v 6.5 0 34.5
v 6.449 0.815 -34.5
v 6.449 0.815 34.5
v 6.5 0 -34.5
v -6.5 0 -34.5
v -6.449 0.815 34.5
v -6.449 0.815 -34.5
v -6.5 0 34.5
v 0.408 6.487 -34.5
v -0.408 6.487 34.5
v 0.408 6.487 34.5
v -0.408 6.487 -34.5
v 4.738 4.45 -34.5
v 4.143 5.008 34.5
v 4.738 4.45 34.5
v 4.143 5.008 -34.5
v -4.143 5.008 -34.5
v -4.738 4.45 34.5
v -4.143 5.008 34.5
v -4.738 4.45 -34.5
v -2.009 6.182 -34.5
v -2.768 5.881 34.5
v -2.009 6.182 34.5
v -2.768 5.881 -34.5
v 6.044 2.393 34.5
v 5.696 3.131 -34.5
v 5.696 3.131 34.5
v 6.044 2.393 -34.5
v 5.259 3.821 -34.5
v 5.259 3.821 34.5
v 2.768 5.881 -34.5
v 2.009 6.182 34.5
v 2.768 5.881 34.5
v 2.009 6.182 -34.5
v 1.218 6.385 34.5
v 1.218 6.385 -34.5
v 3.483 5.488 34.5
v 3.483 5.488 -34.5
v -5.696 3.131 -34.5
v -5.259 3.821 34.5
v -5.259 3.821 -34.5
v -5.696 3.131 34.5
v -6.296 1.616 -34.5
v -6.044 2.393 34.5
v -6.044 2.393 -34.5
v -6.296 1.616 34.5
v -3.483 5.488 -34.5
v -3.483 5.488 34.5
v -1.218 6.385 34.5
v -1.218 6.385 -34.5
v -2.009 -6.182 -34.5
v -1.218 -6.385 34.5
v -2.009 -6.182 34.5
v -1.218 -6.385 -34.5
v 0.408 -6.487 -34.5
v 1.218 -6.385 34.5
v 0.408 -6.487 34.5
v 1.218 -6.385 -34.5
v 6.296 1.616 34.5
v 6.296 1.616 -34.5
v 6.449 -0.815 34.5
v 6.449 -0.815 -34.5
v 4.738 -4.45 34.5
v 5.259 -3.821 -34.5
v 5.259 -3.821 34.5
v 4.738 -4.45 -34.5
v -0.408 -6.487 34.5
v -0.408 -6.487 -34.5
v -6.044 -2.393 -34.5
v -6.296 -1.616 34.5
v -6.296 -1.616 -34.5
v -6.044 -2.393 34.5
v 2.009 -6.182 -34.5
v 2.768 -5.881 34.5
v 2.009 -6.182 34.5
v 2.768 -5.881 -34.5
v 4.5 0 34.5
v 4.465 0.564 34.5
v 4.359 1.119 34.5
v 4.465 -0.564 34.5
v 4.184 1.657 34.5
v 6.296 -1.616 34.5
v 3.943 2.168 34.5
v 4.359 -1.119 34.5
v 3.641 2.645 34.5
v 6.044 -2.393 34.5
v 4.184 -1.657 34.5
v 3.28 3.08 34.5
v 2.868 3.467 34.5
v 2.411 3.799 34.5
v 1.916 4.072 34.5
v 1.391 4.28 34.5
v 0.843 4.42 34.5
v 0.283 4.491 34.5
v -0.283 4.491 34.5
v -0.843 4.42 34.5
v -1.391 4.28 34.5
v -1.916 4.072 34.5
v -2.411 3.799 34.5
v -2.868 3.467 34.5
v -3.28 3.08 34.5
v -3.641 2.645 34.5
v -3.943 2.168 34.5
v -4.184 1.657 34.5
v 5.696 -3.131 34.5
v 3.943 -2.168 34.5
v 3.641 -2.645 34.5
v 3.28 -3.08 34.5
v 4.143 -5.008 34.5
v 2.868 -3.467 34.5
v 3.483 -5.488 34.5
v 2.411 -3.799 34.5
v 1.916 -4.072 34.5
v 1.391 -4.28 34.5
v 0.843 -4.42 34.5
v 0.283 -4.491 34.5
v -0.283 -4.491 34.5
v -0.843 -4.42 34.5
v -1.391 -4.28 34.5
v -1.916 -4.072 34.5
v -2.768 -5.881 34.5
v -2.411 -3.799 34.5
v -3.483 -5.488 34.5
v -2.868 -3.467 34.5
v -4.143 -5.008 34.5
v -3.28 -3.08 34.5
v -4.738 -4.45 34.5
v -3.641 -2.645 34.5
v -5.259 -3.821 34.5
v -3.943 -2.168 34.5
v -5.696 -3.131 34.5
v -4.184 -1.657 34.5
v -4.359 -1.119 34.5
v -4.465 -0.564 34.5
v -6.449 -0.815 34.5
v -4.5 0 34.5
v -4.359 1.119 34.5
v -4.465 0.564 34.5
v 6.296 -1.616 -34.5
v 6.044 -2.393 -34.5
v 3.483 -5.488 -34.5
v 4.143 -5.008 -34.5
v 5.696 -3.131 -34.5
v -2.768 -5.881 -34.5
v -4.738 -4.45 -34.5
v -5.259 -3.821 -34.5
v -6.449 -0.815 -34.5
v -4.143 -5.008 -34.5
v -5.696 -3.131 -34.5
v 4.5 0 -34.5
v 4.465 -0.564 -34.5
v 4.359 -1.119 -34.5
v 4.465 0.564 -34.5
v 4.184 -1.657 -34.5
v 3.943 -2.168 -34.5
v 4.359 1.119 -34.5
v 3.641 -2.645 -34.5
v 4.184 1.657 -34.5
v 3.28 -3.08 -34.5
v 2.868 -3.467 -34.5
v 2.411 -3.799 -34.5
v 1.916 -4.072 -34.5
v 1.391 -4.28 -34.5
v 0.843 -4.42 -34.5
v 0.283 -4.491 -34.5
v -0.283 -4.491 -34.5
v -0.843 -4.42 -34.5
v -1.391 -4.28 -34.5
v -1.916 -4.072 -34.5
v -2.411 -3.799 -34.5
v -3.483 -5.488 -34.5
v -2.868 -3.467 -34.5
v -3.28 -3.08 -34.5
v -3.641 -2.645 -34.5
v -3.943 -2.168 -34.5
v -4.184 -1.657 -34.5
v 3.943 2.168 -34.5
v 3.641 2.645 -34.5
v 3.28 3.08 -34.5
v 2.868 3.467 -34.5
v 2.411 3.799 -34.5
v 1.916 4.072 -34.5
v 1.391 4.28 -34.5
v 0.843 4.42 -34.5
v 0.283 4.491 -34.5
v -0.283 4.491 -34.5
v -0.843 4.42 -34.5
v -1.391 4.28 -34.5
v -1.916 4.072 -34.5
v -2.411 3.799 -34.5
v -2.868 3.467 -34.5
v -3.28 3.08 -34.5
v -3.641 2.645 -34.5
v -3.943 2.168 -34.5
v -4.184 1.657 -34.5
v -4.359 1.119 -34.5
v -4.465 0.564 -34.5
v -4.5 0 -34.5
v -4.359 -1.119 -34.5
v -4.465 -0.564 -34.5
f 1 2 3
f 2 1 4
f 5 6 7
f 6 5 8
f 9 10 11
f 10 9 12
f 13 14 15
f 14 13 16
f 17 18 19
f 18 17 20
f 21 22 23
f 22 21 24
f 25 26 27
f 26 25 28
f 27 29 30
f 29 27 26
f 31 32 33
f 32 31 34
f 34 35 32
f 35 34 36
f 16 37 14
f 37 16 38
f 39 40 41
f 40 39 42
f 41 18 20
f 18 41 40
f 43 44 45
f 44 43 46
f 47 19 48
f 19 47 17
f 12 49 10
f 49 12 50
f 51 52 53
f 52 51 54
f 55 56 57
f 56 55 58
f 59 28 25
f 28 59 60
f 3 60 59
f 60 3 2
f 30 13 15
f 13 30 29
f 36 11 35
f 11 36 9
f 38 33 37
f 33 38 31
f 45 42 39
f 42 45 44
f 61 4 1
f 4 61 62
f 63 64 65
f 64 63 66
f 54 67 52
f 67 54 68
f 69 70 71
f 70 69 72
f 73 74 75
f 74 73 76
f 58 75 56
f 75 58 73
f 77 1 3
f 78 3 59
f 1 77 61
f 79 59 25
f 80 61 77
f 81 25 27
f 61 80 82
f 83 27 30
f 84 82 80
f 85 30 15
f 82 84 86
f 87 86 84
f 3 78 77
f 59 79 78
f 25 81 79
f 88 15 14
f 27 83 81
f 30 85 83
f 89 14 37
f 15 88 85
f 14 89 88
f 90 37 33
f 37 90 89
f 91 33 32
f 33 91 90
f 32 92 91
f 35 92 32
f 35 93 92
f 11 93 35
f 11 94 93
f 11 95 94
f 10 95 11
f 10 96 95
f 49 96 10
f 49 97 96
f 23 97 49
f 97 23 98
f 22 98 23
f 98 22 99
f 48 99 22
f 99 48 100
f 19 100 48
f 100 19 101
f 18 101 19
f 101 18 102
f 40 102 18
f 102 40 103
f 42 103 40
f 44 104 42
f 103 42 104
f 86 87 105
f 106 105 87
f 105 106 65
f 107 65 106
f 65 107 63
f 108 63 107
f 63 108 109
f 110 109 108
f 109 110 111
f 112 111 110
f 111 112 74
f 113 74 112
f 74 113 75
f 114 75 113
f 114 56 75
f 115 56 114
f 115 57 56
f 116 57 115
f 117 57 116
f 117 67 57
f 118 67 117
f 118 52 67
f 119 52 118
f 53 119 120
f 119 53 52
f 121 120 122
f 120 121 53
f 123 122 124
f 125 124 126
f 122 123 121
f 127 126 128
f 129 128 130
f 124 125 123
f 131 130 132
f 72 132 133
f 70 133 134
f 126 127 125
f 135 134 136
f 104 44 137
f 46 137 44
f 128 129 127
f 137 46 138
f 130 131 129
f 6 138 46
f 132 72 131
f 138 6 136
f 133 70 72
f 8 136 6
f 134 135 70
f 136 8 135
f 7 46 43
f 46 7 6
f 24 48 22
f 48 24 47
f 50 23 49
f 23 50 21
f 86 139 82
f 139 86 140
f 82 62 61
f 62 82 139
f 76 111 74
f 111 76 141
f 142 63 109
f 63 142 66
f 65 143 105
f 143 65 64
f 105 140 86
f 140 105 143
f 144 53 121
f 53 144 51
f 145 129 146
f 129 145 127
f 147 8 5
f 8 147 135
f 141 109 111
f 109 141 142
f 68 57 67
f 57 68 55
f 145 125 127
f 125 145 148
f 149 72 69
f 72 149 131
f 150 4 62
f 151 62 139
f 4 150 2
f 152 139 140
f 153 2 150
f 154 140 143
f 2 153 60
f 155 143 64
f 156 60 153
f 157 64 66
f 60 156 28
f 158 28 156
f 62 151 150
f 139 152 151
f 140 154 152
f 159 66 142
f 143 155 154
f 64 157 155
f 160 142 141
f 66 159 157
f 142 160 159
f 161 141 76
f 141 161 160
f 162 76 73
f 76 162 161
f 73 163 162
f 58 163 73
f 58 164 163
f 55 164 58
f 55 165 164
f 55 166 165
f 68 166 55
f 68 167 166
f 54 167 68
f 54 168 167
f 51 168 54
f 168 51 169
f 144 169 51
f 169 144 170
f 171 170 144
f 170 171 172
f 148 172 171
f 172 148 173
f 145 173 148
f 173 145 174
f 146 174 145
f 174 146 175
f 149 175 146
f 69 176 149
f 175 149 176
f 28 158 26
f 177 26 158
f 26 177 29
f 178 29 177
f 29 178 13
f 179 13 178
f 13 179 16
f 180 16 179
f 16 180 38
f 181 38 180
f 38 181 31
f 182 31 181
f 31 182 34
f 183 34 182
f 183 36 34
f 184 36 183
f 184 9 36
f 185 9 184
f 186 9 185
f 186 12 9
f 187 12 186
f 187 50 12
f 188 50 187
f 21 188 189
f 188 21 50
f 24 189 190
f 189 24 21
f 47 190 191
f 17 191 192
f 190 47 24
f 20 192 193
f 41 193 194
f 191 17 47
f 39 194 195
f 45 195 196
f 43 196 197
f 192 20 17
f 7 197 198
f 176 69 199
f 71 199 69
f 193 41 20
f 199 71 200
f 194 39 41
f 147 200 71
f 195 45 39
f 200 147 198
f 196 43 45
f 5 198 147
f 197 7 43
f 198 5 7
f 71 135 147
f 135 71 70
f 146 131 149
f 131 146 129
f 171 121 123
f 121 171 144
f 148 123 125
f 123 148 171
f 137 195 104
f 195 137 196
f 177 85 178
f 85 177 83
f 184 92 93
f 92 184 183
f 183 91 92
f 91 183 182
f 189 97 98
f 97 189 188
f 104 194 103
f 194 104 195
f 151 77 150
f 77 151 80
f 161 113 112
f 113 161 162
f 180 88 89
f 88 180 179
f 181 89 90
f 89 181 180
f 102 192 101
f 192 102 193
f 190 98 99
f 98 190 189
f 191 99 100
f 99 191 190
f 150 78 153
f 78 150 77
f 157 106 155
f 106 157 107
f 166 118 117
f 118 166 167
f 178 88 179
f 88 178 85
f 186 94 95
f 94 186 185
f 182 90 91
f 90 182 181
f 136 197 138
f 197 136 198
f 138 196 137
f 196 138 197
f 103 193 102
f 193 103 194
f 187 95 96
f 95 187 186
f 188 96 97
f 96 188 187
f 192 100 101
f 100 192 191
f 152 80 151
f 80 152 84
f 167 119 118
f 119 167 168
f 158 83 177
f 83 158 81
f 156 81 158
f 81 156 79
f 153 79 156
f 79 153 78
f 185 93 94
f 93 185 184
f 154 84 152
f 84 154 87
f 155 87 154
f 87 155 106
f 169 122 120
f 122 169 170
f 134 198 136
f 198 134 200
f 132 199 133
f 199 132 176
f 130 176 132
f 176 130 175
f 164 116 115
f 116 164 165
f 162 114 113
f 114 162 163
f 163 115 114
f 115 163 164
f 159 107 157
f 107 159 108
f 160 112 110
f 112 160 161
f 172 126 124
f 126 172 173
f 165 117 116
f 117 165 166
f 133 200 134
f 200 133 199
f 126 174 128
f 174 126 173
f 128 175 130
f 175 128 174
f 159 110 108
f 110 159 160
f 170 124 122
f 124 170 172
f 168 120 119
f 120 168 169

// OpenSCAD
$fn = 50;


difference() {
	union() {
		translate(v = [0, 0, -34.5000000000]) {
			cylinder(h = 69, r = 6.5000000000);
		}
	}
	union() {
		translate(v = [0, 0, -100.0000000000]) {
			cylinder(h = 200, r = 4.5000000000);
		}
	}
}
